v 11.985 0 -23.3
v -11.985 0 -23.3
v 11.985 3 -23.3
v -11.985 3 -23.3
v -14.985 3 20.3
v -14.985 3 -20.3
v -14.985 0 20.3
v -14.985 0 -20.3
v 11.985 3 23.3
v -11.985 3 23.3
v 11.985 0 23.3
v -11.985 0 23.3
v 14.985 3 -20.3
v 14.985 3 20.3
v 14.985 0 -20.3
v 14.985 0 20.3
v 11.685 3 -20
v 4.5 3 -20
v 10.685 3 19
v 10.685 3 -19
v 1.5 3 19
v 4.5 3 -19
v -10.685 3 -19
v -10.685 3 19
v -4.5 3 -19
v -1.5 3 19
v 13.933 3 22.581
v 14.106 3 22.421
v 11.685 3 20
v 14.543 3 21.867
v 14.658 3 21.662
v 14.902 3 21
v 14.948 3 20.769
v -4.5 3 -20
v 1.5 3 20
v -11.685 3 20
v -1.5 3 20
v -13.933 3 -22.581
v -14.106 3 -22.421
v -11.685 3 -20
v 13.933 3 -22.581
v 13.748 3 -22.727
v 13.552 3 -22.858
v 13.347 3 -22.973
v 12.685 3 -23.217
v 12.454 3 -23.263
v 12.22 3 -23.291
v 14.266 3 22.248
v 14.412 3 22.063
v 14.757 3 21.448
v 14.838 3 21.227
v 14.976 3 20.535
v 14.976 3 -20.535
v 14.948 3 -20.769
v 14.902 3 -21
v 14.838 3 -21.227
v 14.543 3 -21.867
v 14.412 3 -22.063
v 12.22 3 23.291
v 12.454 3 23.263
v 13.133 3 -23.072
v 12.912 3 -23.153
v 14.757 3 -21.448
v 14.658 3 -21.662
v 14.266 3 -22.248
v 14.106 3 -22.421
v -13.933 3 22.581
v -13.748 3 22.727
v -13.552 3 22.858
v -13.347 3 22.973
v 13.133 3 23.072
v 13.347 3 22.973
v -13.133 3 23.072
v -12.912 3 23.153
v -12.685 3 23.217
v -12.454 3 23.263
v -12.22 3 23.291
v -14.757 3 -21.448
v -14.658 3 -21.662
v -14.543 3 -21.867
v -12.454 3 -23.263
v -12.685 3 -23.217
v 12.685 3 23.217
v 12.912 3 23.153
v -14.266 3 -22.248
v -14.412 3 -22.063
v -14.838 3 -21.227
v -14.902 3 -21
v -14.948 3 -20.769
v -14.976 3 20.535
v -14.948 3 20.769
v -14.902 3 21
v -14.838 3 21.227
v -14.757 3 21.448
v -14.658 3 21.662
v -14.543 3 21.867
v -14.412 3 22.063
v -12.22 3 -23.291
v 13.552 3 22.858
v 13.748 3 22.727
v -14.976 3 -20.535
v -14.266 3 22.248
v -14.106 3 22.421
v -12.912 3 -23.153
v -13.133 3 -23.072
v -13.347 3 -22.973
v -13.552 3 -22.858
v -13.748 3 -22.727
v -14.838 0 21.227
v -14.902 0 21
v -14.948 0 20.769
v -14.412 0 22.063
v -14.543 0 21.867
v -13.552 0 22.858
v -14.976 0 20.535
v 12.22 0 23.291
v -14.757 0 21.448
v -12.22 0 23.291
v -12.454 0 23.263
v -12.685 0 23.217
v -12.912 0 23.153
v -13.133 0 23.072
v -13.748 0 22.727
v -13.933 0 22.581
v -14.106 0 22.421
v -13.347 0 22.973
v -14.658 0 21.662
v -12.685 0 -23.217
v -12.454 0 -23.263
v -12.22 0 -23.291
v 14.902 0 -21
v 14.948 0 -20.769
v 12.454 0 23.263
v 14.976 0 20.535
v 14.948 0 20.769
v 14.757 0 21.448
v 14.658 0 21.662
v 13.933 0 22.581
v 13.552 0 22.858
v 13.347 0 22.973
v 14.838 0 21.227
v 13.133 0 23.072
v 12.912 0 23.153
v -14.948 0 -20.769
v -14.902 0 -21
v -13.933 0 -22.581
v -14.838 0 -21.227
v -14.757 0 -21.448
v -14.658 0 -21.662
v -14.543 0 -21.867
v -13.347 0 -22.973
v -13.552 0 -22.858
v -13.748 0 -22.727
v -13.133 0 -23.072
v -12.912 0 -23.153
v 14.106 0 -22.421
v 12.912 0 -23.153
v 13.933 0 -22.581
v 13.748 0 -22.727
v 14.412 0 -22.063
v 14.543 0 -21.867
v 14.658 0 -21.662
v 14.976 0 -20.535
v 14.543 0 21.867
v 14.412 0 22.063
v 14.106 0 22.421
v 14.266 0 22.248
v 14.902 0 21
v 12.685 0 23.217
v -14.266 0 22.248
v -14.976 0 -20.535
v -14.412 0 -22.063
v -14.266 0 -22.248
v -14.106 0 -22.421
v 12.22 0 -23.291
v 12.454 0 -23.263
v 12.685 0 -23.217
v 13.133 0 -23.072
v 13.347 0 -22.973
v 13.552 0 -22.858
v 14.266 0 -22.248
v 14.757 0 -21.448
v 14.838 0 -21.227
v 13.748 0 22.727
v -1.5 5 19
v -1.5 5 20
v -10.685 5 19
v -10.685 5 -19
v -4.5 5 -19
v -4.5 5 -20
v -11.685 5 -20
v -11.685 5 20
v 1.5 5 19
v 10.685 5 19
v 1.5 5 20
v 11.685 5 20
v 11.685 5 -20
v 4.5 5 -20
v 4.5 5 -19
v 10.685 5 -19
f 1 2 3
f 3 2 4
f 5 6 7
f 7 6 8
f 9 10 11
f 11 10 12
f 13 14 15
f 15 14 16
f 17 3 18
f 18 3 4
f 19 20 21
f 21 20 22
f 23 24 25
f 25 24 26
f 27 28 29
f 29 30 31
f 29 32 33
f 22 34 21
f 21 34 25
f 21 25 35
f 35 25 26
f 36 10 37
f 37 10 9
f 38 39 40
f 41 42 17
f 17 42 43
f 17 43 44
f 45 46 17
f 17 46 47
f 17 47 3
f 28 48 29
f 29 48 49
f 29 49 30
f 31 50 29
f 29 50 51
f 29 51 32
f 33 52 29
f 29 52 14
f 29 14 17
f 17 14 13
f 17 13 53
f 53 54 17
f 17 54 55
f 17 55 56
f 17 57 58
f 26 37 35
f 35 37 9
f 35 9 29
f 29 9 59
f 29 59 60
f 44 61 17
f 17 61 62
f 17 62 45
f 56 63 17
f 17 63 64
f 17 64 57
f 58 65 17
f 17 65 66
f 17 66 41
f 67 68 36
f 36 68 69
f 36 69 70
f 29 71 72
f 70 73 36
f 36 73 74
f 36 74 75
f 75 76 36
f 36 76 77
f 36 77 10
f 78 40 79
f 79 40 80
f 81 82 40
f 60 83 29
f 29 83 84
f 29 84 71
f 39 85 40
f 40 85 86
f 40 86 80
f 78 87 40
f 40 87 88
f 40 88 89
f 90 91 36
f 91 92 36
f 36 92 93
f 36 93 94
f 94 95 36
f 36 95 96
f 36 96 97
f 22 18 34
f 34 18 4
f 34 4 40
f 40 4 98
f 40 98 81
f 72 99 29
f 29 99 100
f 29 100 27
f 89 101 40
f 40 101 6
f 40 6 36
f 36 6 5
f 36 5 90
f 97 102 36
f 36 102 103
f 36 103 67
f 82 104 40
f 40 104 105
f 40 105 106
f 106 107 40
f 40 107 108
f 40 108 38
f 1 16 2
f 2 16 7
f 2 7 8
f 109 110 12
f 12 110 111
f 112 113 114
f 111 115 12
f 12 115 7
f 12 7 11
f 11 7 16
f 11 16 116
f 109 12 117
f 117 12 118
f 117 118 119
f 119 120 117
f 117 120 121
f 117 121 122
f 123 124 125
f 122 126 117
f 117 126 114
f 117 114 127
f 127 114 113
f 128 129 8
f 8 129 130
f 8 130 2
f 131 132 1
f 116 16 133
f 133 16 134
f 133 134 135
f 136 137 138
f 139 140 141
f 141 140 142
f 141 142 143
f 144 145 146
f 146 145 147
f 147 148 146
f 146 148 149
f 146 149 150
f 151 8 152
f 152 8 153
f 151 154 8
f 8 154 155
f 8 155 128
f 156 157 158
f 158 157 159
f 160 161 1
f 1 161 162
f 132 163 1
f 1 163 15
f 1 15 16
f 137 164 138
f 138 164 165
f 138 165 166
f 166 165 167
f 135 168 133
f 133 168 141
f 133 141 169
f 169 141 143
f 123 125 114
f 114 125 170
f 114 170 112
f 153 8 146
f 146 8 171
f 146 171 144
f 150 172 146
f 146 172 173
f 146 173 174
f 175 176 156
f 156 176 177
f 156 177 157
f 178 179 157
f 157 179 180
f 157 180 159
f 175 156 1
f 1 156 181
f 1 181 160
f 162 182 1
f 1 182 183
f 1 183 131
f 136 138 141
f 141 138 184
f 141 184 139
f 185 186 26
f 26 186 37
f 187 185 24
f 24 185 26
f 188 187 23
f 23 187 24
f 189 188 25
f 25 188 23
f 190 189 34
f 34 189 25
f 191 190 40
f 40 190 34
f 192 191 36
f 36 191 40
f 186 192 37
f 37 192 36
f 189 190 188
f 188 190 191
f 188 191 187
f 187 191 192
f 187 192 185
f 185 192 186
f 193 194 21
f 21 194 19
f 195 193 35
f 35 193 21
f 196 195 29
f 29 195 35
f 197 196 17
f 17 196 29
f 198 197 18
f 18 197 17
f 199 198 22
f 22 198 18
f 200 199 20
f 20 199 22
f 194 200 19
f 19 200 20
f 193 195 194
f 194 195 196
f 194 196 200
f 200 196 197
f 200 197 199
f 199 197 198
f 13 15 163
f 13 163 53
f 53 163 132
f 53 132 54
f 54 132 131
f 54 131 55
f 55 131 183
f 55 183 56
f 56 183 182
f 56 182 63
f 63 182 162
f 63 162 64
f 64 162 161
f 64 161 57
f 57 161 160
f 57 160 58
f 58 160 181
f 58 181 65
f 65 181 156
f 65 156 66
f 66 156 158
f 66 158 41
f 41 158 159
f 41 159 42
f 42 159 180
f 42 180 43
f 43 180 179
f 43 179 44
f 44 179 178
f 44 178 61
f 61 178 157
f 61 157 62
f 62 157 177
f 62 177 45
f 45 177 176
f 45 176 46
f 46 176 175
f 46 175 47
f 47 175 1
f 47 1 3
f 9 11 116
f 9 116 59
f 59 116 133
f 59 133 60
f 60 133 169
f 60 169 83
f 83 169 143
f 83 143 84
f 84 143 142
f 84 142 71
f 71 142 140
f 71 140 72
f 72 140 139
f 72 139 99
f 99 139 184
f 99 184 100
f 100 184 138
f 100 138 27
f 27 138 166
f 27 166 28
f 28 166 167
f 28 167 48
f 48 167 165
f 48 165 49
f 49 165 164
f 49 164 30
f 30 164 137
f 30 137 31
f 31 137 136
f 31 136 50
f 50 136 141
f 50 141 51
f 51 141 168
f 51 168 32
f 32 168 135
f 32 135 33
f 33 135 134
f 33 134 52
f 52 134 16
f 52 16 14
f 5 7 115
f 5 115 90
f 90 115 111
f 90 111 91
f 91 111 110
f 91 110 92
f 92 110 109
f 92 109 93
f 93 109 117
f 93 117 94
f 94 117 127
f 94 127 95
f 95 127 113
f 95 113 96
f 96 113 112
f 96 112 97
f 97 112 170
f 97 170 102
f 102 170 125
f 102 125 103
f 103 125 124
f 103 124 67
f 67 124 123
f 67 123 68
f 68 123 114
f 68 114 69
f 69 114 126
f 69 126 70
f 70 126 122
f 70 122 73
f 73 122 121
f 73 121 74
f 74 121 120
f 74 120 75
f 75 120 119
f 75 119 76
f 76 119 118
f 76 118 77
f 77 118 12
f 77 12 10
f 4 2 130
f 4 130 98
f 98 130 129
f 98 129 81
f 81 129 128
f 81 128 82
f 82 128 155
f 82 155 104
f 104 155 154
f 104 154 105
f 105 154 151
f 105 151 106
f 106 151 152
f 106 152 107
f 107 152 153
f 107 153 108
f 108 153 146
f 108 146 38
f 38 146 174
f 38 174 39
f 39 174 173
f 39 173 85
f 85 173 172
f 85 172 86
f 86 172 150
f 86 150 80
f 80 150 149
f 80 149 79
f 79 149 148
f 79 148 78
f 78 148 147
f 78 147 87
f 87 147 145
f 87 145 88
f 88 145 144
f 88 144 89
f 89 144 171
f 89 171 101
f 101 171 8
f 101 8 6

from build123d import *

# Parameters (mm, degrees)
SKETCH1_W           = 29.97
SKETCH1_H           = 46.6
BOSS_EXTRUDE1_DEPTH = 3
BOSS_EXTRUDE2_DEPTH = 2
FILLET1_R           = 3


with BuildPart() as part:
    # Sketch1 → Boss-Extrude1 (new body)
    with BuildSketch(Plane(origin=(0, 0, 0), x_dir=(1, 0, 0), z_dir=(0, 1, 0))):
        Rectangle(SKETCH1_W, SKETCH1_H)
    extrude(amount=BOSS_EXTRUDE1_DEPTH)

    # Sketch2 → Boss-Extrude2 (add)
    with BuildSketch(Plane(origin=(0, 3, 0), x_dir=(1, 0, 0), z_dir=(0, 1, 0))):
        Polygon((-4.5, 19), (-4.5, 20), (-11.685, 20), (-11.685, -20), (-1.5, -20), (-1.5, -19), (-10.685, -19), (-10.685, 19), align=None)
        Polygon((11.685, -20), (11.685, 20), (4.5, 20), (4.5, 19), (10.685, 19), (10.685, -19), (1.5, -19), (1.5, -20), align=None)
    extrude(amount=BOSS_EXTRUDE2_DEPTH)

    # Fillet1
    fillet1_edges = [part.edges().sort_by_distance(p)[0] for p in [
        (14.985, 1.5, -23.3),
        (14.985, 1.5, 23.3),
        (-14.985, 1.5, 23.3),
        (-14.985, 1.5, -23.3),
    ]]
    fillet(fillet1_edges, radius=FILLET1_R)


solid = part.part
